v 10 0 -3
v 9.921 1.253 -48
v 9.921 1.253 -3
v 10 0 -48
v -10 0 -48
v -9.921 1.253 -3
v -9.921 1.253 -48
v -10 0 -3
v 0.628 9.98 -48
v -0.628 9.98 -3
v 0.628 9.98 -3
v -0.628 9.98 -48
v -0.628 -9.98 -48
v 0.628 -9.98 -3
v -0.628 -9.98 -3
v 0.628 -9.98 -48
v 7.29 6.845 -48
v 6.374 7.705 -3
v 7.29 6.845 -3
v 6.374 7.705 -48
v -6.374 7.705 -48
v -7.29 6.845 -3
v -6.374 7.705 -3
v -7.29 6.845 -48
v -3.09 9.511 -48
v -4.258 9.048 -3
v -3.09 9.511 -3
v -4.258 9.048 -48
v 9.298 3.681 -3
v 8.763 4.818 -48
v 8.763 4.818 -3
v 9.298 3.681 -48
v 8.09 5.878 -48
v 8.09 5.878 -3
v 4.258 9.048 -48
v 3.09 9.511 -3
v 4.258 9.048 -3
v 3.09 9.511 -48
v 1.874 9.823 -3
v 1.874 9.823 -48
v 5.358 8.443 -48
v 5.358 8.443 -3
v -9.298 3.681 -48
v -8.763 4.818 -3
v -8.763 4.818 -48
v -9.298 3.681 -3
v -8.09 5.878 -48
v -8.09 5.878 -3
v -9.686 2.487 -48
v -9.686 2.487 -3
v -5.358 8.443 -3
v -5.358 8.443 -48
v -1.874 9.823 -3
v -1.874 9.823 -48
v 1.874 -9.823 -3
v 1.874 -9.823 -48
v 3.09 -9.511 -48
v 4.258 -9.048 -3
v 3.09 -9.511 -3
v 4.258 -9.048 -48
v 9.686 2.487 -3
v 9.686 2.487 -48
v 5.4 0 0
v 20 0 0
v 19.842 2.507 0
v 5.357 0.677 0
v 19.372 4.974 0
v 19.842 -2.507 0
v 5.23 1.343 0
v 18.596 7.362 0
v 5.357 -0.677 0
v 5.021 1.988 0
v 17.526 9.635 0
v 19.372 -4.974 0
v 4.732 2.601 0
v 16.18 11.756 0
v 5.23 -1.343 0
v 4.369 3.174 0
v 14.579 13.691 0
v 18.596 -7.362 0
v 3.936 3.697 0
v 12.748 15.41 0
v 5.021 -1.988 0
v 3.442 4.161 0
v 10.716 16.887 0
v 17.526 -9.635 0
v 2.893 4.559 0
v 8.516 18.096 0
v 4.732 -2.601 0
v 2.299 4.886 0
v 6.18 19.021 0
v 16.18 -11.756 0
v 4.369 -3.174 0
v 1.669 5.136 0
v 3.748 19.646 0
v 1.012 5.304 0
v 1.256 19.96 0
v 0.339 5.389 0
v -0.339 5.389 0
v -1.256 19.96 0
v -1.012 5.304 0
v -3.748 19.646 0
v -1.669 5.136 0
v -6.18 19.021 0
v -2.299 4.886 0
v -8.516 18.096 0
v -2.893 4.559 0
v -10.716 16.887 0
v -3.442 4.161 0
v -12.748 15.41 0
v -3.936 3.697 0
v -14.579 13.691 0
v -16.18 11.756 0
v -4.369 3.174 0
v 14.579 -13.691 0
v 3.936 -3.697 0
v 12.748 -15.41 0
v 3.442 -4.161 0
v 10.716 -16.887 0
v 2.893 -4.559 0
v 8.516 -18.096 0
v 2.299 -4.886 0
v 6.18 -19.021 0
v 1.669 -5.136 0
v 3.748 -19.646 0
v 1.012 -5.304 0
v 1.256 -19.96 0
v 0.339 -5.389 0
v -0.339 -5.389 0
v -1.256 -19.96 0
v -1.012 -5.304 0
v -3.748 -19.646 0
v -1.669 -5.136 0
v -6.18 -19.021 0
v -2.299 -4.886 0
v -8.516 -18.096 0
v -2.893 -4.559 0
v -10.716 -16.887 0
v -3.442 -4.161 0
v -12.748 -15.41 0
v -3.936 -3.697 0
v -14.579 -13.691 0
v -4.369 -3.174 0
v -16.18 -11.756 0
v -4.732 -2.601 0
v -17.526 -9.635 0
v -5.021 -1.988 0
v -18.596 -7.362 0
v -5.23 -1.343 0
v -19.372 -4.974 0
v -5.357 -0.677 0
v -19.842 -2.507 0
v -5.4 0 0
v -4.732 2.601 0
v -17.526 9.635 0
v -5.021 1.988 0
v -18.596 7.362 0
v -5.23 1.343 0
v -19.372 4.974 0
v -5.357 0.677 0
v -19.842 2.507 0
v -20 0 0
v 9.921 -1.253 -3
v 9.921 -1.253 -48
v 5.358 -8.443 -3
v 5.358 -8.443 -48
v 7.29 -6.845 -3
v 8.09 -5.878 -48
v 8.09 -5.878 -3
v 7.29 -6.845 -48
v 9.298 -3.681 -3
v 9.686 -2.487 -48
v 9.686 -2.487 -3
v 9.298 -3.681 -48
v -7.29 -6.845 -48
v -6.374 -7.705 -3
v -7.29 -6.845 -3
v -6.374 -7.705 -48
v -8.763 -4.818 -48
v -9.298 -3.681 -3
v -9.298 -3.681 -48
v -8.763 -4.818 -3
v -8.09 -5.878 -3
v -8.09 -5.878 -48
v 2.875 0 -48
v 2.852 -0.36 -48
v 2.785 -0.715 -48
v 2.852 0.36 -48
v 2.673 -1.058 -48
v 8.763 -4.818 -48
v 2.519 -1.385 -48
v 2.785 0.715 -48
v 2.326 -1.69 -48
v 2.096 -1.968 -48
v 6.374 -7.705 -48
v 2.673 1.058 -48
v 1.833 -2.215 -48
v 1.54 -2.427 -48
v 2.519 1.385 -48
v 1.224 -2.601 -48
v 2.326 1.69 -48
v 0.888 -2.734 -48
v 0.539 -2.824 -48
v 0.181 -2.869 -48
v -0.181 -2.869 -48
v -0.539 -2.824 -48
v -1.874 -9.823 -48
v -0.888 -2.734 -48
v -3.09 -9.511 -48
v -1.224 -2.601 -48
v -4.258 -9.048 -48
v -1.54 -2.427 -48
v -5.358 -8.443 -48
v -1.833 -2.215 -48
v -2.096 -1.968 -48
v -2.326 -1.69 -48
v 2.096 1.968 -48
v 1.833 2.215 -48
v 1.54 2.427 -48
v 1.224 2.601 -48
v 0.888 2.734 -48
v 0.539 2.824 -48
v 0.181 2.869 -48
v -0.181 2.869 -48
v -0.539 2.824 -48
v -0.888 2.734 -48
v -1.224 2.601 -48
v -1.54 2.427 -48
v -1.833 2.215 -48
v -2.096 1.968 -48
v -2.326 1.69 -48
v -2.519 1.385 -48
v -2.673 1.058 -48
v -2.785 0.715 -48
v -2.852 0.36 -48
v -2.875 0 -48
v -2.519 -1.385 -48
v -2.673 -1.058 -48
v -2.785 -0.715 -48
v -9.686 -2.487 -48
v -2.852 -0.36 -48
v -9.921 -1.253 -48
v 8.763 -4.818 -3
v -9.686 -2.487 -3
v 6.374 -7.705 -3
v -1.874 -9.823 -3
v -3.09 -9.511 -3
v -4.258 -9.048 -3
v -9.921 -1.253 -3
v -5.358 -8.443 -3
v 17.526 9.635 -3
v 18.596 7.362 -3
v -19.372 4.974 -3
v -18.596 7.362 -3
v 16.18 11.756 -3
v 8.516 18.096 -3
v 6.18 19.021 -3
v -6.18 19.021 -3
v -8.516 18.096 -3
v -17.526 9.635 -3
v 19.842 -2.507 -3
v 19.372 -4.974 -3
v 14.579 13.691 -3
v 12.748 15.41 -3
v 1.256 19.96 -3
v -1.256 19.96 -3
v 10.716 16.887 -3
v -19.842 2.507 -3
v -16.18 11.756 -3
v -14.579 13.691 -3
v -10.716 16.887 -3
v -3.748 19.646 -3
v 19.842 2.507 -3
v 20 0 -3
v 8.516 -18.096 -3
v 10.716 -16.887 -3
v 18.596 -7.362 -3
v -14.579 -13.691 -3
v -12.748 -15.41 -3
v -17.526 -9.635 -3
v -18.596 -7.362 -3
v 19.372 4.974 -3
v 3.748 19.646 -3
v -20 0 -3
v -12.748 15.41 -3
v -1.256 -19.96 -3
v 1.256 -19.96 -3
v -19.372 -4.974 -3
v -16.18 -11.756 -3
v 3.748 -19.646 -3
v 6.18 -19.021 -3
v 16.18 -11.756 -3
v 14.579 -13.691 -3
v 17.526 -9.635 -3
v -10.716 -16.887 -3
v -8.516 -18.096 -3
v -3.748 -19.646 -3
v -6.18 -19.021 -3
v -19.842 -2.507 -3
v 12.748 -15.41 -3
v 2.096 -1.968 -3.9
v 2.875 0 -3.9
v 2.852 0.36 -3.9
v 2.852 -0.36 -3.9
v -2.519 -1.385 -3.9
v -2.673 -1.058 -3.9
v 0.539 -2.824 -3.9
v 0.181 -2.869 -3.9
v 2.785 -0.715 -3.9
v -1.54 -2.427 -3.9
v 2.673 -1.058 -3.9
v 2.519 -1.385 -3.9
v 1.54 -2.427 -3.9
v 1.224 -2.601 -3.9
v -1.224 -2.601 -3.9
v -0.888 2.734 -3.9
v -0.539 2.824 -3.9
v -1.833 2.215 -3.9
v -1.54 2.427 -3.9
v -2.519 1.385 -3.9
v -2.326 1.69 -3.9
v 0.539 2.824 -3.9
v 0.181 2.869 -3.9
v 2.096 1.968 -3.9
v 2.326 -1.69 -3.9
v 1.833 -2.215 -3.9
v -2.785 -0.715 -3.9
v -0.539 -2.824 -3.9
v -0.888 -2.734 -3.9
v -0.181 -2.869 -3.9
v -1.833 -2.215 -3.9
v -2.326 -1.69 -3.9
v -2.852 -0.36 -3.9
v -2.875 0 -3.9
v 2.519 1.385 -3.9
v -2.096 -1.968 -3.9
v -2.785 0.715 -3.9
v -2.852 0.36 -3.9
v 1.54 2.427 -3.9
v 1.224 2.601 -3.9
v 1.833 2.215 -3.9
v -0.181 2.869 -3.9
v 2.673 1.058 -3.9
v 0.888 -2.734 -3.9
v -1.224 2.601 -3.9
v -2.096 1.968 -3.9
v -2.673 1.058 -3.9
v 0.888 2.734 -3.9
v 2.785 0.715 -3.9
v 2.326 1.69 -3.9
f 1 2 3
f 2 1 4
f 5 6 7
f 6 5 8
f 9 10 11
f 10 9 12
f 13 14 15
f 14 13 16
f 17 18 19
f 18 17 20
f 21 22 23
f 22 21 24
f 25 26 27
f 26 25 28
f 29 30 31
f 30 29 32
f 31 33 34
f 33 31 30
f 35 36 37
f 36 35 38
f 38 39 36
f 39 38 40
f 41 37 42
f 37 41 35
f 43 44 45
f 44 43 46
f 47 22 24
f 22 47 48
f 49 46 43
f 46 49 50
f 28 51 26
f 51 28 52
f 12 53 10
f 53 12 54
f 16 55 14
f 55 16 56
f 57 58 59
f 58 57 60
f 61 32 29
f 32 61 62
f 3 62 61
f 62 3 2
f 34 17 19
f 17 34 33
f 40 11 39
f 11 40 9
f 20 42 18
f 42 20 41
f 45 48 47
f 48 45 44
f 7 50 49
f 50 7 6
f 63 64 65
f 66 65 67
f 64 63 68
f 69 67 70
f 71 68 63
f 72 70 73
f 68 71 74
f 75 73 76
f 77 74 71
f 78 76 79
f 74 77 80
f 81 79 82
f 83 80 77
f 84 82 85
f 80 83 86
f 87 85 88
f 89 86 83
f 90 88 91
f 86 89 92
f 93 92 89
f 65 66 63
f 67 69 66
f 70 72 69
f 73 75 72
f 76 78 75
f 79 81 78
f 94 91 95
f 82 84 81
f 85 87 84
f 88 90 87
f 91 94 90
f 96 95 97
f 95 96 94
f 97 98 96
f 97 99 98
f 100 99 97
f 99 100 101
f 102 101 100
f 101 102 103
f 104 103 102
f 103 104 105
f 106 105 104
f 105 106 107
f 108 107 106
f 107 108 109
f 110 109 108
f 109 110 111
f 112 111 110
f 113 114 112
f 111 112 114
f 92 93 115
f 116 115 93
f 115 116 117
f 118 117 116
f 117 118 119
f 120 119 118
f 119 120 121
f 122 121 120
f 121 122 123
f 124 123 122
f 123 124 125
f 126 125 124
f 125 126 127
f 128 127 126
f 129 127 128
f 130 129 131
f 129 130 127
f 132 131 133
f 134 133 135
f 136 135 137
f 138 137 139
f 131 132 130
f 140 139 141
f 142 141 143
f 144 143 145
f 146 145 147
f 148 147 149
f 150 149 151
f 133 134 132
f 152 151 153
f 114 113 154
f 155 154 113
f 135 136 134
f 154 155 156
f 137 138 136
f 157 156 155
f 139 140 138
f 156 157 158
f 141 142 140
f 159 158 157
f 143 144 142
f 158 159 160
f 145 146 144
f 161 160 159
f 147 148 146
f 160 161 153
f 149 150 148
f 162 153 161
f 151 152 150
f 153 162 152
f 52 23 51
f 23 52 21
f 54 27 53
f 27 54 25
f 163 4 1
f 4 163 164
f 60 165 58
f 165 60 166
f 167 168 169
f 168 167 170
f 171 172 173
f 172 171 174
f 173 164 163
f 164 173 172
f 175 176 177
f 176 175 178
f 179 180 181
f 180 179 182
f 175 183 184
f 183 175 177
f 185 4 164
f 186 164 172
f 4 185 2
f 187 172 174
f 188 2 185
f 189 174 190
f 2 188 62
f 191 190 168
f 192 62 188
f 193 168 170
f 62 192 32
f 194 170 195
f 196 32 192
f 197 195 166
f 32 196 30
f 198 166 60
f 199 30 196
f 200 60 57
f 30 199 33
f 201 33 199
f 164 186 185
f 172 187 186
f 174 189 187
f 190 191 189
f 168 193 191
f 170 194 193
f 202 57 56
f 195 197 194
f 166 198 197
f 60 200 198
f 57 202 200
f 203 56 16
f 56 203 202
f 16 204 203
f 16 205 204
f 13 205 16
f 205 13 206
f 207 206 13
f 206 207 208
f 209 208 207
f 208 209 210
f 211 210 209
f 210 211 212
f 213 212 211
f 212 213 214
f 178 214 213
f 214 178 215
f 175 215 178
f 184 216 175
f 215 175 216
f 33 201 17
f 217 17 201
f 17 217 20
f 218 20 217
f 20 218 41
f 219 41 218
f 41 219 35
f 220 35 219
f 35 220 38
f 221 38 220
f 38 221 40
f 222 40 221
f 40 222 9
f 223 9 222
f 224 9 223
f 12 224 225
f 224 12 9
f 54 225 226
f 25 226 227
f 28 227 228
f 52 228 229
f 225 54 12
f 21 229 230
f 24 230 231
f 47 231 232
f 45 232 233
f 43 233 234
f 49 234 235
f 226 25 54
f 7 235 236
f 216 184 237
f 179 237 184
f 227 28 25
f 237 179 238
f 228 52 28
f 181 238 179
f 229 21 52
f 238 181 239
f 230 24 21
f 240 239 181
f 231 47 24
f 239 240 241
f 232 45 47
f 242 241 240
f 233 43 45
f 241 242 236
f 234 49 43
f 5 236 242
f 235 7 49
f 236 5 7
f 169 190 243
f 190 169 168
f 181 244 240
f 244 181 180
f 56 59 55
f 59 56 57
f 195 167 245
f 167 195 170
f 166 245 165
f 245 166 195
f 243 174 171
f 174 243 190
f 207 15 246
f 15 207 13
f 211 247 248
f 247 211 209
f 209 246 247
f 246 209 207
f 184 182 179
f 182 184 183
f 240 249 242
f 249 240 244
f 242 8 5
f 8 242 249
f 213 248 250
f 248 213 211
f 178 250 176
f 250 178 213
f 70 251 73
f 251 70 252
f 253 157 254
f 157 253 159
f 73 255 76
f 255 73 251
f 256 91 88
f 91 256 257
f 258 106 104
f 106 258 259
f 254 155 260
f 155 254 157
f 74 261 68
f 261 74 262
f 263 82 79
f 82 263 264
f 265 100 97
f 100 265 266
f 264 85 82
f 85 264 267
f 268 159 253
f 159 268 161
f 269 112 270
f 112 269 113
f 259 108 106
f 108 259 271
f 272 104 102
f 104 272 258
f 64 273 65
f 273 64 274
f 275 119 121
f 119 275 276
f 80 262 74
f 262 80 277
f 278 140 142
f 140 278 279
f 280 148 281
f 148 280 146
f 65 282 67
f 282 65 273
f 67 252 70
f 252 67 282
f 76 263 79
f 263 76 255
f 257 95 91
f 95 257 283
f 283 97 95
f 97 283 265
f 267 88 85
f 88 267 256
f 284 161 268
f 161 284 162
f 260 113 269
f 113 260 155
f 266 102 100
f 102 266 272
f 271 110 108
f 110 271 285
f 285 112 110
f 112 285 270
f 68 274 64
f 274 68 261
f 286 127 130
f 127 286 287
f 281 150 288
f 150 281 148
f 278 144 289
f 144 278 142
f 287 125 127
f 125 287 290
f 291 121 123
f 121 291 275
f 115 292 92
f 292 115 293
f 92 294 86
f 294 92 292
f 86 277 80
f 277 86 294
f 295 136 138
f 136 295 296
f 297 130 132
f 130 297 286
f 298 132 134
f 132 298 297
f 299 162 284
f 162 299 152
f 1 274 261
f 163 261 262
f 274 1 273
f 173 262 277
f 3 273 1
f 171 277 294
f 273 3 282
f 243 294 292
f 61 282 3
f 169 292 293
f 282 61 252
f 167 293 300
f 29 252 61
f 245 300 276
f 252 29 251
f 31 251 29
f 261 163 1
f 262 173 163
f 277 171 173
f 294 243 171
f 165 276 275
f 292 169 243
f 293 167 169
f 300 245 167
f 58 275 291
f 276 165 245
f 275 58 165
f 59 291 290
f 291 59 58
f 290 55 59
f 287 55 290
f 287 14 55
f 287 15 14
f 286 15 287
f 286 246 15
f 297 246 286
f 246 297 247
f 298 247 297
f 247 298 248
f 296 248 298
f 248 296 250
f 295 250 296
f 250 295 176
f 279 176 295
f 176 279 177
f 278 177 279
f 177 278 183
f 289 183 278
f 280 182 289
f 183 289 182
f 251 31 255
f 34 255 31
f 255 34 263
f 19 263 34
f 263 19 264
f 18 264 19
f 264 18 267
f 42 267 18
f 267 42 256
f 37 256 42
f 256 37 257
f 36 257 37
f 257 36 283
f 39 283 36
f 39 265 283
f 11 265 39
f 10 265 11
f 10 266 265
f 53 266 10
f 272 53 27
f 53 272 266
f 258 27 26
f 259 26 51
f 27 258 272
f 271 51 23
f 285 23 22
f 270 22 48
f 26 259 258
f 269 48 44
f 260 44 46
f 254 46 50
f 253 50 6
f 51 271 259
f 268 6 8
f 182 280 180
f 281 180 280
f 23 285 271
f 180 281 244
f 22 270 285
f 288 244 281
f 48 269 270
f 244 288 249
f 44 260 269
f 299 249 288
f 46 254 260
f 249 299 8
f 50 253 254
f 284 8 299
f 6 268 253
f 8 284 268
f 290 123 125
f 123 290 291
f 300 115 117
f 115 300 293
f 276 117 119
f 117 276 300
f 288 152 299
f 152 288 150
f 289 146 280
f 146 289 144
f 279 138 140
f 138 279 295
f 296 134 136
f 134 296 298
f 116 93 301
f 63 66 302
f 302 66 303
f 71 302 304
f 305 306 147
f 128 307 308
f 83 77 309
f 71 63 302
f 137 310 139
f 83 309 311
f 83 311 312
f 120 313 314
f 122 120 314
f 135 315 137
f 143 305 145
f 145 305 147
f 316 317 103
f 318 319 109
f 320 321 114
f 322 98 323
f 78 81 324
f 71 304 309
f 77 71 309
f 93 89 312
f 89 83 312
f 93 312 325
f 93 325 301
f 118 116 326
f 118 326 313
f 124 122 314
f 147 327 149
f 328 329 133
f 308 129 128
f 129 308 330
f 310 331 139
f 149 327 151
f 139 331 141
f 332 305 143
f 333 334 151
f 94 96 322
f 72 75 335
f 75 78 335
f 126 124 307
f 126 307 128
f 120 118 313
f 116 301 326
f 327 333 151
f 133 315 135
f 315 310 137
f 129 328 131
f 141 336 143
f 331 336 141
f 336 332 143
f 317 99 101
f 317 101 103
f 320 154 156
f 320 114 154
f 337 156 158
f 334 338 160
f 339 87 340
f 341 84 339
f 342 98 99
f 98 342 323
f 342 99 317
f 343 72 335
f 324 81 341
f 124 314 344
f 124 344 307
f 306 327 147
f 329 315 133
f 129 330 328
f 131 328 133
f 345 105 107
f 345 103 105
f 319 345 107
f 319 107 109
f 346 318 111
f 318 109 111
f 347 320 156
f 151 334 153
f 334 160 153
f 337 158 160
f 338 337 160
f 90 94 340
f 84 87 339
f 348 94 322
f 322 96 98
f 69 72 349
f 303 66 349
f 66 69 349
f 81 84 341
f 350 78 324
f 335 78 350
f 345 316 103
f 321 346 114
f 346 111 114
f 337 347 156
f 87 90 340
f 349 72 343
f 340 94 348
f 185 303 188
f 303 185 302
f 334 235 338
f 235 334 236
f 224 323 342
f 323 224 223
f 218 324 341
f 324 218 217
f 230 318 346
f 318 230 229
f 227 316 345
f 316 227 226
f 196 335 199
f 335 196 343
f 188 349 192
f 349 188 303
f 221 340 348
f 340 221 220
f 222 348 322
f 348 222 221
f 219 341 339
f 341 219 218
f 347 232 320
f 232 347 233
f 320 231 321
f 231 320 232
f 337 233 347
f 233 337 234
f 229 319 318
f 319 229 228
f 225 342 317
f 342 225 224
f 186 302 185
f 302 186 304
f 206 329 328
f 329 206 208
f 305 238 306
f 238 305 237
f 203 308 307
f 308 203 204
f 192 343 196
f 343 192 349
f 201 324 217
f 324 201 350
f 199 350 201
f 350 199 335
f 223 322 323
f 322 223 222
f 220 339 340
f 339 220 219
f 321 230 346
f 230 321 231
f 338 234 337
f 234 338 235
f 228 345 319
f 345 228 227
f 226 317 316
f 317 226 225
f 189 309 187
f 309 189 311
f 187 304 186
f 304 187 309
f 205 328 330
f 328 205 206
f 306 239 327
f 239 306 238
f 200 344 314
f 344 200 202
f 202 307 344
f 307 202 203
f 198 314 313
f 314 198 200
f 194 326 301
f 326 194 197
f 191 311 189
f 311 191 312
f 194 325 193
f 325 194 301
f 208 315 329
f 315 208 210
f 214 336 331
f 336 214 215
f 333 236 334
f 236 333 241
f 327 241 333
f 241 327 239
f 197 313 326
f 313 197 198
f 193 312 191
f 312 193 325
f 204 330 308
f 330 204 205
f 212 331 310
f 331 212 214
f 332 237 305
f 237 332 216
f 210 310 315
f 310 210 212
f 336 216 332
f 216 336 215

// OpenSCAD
$fn = 50;


difference() {
	union() {
		translate(v = [0, 0, -48.0000000000]) {
			cylinder(h = 48, r = 10.0000000000);
		}
		translate(v = [0, 0, -3.0000000000]) {
			cylinder(h = 3, r = 20.0000000000);
		}
	}
	union() {
		translate(v = [0, 0, 0]) {
			rotate(a = [0, 0, 0]) {
				difference() {
					union() {
						#translate(v = [0, 0, -48.0000000000]) {
							cylinder(h = 48, r = 2.6000000000);
						}
						#translate(v = [0, 0, -3.9000000000]) {
							cylinder(h = 3.9000000000, r1 = 2.8750000000, r2 = 5.4000000000);
						}
						#translate(v = [0, 0, -48.0000000000]) {
							cylinder(h = 48, r = 2.8750000000);
						}
						#translate(v = [0, 0, -48.0000000000]) {
							cylinder(h = 48, r = 2.6000000000);
						}
					}
					union();
				}
			}
		}
	}
}
